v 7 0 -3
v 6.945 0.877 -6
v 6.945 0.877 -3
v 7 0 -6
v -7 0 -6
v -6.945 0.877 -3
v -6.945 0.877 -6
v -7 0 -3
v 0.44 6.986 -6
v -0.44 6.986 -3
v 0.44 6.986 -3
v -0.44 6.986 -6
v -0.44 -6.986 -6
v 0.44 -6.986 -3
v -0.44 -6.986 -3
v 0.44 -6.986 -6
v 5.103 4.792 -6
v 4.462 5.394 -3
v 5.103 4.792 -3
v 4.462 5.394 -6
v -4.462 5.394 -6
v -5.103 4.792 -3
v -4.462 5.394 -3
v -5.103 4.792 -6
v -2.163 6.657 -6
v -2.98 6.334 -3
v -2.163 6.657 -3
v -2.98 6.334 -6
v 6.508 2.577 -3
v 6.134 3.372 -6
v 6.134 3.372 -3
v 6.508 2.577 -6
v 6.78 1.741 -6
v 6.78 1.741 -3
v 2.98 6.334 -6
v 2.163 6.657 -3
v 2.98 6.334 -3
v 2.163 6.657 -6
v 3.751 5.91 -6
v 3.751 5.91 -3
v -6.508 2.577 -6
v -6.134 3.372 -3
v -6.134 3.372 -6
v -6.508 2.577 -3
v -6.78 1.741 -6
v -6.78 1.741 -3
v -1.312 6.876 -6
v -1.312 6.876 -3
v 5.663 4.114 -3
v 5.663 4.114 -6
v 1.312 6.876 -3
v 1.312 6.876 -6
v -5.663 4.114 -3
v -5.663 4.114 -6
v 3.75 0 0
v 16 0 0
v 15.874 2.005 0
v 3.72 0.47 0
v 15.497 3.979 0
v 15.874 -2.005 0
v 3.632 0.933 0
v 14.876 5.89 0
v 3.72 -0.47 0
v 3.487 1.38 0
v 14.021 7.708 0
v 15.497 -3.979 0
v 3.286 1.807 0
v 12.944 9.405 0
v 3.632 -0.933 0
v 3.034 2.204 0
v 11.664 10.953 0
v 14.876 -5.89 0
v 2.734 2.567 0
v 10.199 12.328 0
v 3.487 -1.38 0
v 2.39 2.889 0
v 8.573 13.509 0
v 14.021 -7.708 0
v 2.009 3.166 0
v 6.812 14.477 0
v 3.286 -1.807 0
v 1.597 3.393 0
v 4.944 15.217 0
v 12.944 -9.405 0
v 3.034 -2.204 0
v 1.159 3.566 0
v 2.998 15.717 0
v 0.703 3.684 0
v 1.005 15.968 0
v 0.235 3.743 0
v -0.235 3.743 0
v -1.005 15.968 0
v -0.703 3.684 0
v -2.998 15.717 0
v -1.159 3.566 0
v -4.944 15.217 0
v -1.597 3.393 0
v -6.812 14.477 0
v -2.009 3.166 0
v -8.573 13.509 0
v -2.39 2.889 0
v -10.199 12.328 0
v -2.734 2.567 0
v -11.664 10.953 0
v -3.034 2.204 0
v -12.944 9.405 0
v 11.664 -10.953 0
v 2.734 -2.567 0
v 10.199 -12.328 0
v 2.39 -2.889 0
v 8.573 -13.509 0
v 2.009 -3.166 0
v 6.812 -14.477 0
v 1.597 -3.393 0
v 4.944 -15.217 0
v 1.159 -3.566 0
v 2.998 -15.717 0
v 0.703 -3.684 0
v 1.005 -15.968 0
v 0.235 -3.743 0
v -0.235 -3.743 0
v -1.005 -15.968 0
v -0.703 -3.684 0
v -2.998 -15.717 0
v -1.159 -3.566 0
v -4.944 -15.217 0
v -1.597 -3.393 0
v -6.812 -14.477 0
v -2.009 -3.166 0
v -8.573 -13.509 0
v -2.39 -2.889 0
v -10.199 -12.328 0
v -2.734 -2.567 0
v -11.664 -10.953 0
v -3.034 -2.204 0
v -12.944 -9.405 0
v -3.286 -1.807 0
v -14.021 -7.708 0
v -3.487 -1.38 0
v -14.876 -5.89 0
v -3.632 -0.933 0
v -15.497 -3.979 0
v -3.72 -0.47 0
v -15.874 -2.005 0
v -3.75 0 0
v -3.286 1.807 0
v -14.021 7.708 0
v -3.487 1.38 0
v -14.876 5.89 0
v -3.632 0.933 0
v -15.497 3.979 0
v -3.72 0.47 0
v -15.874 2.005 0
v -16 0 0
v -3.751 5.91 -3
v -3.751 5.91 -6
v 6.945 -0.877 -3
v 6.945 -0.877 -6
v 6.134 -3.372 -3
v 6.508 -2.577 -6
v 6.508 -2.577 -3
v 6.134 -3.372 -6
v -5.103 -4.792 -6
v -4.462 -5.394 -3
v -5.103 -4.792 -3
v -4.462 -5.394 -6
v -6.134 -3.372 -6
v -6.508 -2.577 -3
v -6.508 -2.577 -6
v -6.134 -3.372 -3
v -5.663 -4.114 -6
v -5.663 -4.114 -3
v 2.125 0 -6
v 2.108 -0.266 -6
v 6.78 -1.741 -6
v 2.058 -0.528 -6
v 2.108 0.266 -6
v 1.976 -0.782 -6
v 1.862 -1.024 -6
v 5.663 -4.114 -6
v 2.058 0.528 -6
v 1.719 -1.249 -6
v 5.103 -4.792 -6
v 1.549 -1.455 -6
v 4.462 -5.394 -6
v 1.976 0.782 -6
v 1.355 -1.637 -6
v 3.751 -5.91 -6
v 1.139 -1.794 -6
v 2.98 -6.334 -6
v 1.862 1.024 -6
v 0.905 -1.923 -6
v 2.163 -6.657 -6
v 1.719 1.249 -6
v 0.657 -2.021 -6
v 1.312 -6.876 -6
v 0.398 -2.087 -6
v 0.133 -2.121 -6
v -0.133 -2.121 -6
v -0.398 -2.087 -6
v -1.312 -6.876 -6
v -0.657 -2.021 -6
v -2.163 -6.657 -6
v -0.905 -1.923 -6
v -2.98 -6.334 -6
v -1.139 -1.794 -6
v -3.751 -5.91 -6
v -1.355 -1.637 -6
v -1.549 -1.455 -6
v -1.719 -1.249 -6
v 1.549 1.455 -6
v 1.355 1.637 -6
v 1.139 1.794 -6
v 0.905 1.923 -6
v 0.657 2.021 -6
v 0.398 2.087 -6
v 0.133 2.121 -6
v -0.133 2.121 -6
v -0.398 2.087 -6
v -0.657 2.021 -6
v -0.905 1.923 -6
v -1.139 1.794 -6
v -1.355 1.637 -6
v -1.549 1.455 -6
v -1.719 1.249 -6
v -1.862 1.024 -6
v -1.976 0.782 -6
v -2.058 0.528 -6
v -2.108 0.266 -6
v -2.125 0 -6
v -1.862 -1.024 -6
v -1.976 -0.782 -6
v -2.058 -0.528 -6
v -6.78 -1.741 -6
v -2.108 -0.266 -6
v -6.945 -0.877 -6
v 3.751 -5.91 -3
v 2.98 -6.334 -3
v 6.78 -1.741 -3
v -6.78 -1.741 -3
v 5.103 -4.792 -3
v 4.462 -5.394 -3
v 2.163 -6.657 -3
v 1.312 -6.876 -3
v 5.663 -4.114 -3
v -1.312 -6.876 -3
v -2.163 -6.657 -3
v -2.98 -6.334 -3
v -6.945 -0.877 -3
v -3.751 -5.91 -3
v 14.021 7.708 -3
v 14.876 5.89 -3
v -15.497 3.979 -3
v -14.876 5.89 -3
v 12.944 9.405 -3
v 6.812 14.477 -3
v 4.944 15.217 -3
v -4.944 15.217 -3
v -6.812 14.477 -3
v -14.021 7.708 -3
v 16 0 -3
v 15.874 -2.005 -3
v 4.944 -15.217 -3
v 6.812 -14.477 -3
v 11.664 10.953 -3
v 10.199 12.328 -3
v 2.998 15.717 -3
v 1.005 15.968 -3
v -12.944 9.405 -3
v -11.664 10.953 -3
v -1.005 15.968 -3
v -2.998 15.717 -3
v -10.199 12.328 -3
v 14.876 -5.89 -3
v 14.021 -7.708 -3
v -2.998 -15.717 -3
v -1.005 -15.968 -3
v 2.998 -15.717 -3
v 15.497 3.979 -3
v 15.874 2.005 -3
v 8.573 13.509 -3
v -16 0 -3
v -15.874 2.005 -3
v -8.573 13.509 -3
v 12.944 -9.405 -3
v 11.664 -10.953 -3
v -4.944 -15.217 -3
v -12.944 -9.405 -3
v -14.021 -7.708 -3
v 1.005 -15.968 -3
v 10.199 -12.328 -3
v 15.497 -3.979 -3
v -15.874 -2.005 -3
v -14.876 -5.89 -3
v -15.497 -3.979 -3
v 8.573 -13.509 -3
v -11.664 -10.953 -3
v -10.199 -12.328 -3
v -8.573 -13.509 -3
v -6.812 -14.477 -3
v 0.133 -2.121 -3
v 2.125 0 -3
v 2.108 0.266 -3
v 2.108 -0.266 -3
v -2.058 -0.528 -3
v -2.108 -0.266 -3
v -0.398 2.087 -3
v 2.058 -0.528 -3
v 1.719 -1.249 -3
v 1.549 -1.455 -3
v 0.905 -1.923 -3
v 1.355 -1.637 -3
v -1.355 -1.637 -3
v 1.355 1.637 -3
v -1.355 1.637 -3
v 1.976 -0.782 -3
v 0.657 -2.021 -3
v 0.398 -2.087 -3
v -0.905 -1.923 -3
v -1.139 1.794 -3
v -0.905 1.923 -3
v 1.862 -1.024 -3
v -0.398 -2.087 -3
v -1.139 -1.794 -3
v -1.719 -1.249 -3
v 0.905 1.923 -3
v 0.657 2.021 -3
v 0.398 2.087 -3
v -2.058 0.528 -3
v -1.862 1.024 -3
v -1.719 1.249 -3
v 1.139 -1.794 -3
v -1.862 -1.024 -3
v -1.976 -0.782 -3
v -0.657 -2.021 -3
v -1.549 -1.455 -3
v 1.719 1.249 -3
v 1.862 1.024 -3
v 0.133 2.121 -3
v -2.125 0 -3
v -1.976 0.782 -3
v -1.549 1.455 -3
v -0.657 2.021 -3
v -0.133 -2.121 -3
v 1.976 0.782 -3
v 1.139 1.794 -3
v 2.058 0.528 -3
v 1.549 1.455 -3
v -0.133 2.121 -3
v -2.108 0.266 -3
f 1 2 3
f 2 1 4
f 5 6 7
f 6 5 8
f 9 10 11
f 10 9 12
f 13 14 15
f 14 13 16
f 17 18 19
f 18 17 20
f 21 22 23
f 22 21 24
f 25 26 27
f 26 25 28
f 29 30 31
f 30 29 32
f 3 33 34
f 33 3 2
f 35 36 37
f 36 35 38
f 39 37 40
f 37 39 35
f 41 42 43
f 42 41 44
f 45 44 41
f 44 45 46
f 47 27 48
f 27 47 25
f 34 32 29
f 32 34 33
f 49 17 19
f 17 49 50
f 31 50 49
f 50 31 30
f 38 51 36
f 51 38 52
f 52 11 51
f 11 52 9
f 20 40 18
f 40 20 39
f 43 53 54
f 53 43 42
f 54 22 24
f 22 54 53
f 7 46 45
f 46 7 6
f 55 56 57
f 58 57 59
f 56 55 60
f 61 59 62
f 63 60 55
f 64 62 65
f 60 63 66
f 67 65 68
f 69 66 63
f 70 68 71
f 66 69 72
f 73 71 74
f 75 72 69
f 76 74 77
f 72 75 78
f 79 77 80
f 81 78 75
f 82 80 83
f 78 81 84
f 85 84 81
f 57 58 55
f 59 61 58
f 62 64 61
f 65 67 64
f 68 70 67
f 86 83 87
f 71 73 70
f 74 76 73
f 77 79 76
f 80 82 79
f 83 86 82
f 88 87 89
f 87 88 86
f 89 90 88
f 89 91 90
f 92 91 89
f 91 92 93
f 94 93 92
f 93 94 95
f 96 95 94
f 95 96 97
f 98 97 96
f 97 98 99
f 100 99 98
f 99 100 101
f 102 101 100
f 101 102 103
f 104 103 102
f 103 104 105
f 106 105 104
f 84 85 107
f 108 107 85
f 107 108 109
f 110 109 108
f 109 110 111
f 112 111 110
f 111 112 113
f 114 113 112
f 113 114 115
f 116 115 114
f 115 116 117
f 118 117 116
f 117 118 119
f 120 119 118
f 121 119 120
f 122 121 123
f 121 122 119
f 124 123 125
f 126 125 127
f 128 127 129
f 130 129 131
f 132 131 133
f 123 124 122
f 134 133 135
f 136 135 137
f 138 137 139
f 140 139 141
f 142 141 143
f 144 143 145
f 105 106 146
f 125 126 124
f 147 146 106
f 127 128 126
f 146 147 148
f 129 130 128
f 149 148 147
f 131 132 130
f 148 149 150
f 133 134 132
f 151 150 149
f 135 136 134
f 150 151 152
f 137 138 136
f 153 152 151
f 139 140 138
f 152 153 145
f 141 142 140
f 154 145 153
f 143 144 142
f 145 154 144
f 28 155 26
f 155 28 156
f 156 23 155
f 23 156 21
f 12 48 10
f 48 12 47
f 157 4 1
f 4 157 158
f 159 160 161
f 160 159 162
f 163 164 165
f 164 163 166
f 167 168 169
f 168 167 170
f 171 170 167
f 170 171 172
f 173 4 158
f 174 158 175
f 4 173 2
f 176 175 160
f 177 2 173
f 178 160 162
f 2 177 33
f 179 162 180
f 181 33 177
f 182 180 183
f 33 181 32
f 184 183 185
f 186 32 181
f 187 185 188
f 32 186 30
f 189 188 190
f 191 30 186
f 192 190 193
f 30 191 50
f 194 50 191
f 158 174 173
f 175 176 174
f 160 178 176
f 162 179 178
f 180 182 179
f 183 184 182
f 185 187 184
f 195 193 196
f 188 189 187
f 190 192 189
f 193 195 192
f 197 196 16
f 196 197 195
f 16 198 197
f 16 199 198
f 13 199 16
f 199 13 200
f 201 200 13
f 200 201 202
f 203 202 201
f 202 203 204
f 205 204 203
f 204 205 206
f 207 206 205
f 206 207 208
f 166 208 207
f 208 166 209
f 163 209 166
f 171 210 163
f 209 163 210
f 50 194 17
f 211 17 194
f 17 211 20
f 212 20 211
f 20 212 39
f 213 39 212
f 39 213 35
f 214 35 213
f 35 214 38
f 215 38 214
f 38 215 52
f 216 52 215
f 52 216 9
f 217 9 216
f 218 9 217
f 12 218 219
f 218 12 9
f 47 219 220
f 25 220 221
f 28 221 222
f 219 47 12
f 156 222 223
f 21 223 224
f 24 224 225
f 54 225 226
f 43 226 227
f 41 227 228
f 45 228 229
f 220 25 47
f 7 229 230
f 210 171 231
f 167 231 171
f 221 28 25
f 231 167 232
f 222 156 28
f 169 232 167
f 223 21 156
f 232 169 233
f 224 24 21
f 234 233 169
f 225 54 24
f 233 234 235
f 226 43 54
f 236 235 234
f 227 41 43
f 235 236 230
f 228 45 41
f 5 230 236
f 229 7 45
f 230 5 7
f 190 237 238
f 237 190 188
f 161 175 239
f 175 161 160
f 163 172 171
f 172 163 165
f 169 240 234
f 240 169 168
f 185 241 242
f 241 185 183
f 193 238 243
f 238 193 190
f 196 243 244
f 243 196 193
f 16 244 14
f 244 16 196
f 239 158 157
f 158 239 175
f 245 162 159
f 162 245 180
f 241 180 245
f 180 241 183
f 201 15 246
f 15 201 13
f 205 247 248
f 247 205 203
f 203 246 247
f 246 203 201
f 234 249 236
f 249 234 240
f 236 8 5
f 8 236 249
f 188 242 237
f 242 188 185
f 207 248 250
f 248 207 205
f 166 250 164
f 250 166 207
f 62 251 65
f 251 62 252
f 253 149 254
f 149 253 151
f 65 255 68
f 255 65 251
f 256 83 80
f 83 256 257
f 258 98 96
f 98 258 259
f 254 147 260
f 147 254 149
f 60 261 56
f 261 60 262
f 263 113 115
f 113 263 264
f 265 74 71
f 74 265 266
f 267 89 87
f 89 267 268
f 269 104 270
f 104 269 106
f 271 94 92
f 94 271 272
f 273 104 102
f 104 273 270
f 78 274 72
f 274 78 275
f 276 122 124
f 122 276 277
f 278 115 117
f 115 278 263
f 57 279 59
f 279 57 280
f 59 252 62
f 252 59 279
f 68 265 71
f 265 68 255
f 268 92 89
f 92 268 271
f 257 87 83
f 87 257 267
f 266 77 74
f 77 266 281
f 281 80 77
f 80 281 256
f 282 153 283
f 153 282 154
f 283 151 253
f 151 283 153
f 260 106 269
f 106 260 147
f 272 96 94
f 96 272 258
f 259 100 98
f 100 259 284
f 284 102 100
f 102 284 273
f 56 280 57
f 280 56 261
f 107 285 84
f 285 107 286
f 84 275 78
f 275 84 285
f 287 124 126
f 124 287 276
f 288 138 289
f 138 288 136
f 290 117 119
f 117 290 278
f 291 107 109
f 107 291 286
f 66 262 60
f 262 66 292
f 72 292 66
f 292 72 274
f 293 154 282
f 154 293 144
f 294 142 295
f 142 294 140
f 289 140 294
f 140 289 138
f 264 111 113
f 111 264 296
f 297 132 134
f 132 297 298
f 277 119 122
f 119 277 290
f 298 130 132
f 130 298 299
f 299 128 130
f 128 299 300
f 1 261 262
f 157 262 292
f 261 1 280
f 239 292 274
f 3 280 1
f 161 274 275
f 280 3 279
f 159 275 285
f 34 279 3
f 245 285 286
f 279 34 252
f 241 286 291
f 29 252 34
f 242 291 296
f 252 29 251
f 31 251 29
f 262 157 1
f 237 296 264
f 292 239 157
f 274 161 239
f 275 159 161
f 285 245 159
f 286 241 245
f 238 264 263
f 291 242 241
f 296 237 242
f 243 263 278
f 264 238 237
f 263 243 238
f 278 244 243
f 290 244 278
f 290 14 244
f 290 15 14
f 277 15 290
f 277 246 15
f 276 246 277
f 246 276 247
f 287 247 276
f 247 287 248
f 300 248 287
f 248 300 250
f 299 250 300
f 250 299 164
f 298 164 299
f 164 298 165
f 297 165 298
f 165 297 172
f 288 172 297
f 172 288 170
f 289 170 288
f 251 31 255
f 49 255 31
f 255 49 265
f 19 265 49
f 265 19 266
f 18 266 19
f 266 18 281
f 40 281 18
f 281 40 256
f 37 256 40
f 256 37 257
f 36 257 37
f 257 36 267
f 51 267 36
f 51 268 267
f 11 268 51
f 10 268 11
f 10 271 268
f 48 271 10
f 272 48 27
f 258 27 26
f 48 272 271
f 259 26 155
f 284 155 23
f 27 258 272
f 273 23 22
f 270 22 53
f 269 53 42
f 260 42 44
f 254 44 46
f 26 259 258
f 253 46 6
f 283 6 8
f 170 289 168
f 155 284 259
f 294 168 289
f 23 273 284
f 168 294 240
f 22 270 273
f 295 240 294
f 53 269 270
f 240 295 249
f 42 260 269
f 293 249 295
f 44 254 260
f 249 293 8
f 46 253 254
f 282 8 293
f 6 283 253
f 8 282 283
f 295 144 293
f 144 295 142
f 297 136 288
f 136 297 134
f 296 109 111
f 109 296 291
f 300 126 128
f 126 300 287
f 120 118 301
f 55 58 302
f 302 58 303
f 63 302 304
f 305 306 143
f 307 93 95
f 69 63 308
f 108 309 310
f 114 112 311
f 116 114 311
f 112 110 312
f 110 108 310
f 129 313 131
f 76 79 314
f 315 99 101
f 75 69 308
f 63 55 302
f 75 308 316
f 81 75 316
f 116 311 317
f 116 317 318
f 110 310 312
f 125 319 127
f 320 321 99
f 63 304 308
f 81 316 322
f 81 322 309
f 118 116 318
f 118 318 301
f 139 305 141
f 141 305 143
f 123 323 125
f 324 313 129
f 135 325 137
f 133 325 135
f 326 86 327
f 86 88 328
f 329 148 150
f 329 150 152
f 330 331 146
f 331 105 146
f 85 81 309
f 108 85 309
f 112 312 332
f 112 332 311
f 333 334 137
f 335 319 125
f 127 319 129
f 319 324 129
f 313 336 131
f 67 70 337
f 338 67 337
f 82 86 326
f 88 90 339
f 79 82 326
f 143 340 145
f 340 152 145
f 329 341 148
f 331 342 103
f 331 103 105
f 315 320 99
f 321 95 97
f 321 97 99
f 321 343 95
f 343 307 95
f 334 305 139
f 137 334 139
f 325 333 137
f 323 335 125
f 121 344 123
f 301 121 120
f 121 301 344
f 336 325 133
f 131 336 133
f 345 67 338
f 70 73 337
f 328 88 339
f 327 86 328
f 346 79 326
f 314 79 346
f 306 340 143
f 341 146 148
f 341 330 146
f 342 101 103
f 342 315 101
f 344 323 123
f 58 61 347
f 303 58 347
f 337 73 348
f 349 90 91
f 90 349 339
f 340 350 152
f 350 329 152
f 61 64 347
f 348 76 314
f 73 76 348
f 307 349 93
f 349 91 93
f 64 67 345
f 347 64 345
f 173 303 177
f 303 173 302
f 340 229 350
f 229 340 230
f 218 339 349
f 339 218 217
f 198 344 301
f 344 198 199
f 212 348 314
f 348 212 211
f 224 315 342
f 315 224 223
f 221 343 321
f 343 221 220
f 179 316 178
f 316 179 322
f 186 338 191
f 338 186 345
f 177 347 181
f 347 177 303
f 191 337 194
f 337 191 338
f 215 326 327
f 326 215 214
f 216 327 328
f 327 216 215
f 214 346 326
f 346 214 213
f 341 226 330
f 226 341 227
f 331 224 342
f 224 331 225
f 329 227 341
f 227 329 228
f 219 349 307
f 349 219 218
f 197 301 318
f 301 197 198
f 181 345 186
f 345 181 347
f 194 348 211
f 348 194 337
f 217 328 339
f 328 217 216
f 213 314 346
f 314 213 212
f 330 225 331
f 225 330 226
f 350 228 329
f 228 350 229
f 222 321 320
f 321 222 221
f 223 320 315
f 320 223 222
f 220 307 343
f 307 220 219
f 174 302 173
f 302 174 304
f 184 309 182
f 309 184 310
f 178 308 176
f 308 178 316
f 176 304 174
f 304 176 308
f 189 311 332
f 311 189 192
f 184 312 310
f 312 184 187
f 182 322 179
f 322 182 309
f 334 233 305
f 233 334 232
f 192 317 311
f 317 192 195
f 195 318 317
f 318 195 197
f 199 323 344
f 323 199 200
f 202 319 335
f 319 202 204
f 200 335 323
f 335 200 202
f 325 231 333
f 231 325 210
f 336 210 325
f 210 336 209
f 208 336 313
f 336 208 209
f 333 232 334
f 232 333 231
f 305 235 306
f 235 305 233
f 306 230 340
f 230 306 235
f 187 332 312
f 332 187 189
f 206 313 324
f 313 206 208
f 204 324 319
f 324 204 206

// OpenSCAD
$fn = 50;


difference() {
	union() {
		translate(v = [0, 0, -6.0000000000]) {
			cylinder(h = 6, r = 7.0000000000);
		}
		translate(v = [0, 0, -3.0000000000]) {
			cylinder(h = 3, r = 16.0000000000);
		}
	}
	union() {
		translate(v = [0, 0, 0]) {
			rotate(a = [0, 0, 0]) {
				difference() {
					union() {
						#translate(v = [0, 0, -6.0000000000]) {
							cylinder(h = 6, r = 2.0000000000);
						}
						#translate(v = [0, 0, -3]) {
							cylinder(h = 3, r1 = 2.1250000000, r2 = 3.7500000000);
						}
						#translate(v = [0, 0, -6.0000000000]) {
							cylinder(h = 6, r = 2.1250000000);
						}
						#translate(v = [0, 0, -6.0000000000]) {
							cylinder(h = 6, r = 2.0000000000);
						}
					}
					union();
				}
			}
		}
	}
}
